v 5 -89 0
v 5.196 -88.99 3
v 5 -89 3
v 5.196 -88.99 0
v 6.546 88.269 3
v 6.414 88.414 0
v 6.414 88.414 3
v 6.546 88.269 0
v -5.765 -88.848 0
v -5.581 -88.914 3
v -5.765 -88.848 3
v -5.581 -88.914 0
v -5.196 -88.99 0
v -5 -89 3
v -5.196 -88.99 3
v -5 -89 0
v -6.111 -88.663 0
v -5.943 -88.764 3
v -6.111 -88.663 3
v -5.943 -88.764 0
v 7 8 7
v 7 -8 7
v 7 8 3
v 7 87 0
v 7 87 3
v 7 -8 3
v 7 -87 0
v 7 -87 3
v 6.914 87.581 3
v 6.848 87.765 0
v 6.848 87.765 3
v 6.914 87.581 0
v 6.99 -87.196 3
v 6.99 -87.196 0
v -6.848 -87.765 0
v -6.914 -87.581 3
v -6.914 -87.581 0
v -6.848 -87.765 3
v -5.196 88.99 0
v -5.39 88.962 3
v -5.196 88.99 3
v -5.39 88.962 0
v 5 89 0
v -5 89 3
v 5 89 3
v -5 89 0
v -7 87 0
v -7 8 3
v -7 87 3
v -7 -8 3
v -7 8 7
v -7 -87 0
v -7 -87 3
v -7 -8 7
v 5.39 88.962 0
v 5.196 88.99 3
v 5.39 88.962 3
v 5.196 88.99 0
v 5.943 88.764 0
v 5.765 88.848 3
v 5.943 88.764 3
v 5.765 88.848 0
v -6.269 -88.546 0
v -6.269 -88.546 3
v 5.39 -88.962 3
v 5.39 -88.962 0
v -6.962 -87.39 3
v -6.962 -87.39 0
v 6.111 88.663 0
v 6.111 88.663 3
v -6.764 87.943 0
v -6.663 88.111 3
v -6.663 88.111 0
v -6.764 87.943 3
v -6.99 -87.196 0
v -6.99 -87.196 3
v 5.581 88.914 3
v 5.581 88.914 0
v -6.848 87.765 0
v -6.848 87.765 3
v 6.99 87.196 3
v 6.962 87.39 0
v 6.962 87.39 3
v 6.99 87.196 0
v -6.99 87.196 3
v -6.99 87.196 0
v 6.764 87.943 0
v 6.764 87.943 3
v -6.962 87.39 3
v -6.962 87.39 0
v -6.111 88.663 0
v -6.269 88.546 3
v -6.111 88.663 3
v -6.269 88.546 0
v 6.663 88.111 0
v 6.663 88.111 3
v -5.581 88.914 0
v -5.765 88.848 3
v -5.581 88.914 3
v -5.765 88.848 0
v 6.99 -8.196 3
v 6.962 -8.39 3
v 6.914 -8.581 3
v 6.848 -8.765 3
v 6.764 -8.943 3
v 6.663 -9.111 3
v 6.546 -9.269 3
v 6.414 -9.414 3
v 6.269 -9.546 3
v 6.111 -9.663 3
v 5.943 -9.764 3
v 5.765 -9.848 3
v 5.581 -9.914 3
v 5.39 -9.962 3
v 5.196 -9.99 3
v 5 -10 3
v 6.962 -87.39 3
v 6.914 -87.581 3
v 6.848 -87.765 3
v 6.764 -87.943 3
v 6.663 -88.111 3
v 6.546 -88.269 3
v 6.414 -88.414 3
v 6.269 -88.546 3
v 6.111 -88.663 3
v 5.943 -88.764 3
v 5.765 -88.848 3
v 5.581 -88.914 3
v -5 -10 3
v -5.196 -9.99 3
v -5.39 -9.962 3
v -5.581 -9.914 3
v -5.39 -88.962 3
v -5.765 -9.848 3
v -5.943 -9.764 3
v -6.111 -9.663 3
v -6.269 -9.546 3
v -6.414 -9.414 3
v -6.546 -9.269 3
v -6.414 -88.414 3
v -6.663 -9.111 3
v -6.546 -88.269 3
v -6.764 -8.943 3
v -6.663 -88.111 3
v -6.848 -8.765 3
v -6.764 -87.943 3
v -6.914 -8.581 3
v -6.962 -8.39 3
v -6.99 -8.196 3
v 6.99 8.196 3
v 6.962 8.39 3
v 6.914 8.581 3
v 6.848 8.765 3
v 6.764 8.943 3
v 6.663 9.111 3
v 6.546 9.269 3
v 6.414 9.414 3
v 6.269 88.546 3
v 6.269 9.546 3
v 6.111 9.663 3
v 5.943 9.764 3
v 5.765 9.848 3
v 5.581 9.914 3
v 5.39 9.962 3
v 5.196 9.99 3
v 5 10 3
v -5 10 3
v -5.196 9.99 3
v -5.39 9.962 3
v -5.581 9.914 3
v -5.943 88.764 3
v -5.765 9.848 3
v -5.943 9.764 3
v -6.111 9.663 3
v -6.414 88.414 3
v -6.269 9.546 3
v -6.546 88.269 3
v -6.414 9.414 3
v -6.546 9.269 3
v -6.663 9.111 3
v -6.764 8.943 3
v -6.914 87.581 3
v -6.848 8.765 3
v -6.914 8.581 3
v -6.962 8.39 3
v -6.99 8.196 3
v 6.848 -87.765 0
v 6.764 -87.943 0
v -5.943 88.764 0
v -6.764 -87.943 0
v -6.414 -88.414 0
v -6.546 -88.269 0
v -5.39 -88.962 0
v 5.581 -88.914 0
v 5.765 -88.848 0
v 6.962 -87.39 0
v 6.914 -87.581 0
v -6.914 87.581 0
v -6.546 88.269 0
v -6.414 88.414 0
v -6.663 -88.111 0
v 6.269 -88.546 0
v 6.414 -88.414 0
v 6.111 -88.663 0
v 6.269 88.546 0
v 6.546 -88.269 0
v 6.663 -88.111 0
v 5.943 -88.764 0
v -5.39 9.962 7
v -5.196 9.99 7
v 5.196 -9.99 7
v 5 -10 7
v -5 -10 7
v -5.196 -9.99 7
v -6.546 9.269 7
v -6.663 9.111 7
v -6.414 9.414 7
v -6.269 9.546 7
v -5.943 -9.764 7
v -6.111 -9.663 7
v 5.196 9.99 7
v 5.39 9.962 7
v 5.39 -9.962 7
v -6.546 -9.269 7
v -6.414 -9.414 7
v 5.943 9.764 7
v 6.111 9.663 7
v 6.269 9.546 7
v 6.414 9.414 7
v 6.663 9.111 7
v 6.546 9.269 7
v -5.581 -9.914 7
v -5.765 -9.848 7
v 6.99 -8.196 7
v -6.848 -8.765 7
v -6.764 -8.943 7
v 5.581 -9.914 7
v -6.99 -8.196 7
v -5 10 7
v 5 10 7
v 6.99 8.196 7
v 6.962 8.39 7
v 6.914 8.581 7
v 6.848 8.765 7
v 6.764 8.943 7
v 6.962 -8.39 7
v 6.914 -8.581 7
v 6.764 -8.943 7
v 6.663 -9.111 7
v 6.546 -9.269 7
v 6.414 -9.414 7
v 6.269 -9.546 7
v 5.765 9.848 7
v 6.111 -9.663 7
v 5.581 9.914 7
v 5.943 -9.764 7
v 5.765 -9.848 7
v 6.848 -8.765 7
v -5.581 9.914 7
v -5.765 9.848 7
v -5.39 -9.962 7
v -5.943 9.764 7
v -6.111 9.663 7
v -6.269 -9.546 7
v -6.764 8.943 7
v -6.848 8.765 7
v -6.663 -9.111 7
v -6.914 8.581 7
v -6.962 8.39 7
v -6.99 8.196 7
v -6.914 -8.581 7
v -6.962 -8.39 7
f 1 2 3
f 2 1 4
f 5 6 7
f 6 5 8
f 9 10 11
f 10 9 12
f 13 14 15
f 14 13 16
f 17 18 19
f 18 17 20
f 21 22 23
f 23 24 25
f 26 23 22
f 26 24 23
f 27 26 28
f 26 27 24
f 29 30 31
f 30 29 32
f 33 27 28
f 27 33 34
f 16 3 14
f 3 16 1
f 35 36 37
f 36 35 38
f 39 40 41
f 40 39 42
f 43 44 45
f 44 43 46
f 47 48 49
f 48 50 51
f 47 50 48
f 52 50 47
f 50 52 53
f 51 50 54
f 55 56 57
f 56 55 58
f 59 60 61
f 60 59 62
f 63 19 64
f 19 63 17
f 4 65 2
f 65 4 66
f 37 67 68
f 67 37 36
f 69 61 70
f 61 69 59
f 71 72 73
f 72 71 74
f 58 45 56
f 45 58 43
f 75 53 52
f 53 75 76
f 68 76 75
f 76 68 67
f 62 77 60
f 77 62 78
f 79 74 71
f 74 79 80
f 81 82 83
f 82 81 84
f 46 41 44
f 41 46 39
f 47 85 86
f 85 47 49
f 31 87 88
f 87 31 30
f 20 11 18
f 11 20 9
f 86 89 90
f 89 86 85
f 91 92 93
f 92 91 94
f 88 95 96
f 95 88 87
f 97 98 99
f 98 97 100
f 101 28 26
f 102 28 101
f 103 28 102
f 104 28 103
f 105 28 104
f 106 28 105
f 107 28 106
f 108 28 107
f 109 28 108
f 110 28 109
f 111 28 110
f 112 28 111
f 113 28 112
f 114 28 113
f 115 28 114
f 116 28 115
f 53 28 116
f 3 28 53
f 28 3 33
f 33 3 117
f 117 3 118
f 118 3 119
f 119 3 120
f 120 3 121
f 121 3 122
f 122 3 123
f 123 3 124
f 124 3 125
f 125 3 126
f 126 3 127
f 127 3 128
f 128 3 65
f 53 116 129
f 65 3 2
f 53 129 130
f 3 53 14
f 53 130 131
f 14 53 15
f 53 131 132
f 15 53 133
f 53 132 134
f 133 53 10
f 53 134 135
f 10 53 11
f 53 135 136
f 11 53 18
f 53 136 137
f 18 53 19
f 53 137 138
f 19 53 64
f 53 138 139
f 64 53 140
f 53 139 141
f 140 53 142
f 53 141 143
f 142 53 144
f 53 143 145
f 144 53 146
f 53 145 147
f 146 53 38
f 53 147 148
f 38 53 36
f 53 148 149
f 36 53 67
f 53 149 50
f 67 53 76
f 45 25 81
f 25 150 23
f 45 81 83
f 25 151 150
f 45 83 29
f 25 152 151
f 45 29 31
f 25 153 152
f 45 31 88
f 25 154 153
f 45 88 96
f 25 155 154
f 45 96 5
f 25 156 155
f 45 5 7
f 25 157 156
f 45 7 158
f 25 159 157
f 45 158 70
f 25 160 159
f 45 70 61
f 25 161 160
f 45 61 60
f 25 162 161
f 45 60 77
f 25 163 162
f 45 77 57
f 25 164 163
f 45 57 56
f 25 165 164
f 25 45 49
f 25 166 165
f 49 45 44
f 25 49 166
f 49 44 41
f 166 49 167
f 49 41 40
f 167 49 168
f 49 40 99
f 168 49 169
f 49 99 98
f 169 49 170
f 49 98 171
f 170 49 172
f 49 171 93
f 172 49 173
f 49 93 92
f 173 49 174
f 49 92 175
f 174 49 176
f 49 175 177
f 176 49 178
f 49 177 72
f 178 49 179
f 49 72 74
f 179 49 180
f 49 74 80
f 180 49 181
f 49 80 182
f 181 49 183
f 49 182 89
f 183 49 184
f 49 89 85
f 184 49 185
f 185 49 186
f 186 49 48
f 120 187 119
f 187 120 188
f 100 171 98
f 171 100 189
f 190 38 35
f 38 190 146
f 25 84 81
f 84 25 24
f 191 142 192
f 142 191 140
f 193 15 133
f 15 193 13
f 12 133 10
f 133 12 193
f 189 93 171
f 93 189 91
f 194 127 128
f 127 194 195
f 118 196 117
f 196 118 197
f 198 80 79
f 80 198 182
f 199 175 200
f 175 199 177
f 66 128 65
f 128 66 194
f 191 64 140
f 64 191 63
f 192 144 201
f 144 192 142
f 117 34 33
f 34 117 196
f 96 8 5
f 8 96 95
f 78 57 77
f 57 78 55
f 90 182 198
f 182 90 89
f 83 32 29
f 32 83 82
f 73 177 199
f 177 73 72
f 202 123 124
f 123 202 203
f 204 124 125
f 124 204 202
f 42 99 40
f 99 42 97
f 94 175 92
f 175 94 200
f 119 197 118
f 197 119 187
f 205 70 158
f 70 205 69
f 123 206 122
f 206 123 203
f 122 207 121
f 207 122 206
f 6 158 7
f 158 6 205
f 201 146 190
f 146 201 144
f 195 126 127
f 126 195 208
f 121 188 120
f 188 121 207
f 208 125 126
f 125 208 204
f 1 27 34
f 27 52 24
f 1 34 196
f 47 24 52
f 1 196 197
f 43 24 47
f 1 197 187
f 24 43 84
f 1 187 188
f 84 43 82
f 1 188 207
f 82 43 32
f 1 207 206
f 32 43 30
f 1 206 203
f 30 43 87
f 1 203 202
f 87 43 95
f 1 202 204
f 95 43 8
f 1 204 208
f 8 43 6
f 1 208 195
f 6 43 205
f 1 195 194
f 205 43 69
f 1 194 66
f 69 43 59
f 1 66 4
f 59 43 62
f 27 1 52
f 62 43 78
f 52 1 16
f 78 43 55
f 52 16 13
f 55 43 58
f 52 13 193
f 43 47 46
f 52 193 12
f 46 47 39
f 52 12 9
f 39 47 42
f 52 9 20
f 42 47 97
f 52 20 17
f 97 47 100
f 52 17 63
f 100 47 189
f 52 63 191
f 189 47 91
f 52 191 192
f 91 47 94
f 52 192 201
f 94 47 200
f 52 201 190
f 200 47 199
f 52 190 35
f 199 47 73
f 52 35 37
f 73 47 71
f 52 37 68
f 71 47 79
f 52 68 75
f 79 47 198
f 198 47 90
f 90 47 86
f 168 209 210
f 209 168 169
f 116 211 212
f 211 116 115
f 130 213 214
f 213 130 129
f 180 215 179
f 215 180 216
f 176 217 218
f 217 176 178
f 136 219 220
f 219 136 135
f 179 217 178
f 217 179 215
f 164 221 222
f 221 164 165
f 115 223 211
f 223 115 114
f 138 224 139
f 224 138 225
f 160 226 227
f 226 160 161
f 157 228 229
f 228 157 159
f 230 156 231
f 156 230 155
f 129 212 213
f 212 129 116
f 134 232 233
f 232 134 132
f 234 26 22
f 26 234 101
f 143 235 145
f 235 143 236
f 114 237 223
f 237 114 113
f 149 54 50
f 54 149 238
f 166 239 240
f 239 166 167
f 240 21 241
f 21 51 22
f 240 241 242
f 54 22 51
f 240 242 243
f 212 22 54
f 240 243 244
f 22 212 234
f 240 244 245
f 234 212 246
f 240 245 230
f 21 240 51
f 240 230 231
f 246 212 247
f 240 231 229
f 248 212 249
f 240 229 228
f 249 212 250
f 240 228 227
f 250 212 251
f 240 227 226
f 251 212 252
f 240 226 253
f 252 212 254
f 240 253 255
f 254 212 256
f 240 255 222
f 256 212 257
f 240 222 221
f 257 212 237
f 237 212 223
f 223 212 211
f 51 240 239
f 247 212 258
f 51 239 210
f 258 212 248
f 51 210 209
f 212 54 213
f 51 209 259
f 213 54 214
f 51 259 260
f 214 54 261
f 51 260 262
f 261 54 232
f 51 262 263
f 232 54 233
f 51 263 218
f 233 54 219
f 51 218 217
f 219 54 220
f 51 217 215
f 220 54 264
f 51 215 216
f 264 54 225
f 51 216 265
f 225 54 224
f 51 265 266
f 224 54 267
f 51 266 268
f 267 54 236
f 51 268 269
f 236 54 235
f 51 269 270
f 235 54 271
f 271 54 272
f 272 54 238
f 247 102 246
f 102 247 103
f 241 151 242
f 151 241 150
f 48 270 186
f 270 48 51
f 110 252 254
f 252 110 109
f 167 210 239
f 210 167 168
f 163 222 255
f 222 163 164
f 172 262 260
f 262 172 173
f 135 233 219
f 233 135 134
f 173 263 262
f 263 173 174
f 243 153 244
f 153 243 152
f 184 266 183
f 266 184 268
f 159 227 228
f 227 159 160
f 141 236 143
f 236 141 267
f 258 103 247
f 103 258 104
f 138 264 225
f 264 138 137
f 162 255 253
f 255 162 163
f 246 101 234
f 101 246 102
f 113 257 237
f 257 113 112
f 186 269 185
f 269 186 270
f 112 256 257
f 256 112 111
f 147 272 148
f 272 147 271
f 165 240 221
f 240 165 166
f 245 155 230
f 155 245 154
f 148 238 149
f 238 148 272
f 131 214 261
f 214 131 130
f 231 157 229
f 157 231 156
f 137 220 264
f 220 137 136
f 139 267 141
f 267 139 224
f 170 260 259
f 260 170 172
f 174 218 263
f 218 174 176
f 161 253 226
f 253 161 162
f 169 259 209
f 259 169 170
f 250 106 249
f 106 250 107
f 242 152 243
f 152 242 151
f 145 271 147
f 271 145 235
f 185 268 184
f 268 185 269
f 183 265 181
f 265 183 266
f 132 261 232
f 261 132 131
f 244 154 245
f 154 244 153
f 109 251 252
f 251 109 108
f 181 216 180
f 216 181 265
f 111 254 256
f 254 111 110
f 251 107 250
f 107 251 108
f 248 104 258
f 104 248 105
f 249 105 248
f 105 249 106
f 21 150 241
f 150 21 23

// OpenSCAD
// file: surface-go-window-frame.scad
// Window frame for the Surface Go (1st gen) shop screen.
//
// Glass side: front lip + skirt. Four 3M Dual Lock pads sit at
// (+-pad_c, +-pad_c) - the same spots in landscape and portrait, so the
// frame can be pulled off the glass and snapped back rotated 90 degrees.
// Room side: open back; two flexible bars snap into grooves to hold the tablet.
//
// Print orientation as modelled: back (room side) down on the bed, glass side up.
// Supports only under the front lip (it faces the tablet bezel, hidden).
// Units mm. Landscape as seen from the room: x right, y up, z towards the glass.
//
// Parts: this file renders the frame. surface-go-back-bar.scad (print 2) and
// surface-go-fit-test.scad reuse it via use<>, so change dimensions here only.
//
// Licence: CC BY-NC 4.0

/* [Tablet - Surface Go 1 is 245 x 175 x 8.3] */
tab_w = 245.0;
tab_h = 175.0;
tab_t = 8.3;
clear = 0.5;           // per side in the pocket
tab_r = 5.0;           // pocket corner radius (keep <= tablet's corner radius)

/* [Frame] */
wall = 3.0;            // side wall thickness
lip = 2.0;             // front lip thickness (glass side)
lip_over = 13.0;       // how far the lip covers the bezel (screen starts ~17 in)

/* [Back retention bars] */
ret = 1.5;             // wall material behind the groove (holds the bar in)
bar_t = 3.0;
groove_h = bar_t + 0.3;
groove_d = 1.2;        // groove depth into the long walls
bar_w = 14.0;
bar_play = 0.4;        // bar is this much shorter than groove-to-groove
tab_play = 0.5;        // front-back slack for the tablet

/* [3M Dual Lock] */
dl_mated = 5.7;        // measure your mated pair incl. both adhesives!
pad = 12.0;            // pad square size
pad_c = 81.5;          // pad centre offset from frame centre (both axes)
pad_recess = 0.4;      // shallow locating pocket for each pad
skirt_gap = 0.3;       // skirt stops this short of the glass

/* [Cutouts - landscape: right edge = Surface Connect, top-left = buttons] */
cable_y = [-55, 25];   // slot in the right wall, y range
btn_x = [-112, -68];   // slot in the top wall, x range (power + volume)

$fn = 64;

// --- derived ---------------------------------------------------------------
pw = tab_w + 2 * clear;          // pocket 246 x 176
ph = tab_h + 2 * clear;
ow = pw + 2 * wall;              // outer 252 x 182
oh = ph + 2 * wall;
o_r = tab_r + wall;

z_groove0 = ret;
z_tab0 = ret + groove_h;
z_lip0 = z_tab0 + tab_t + tab_play;
z_lip1 = z_lip0 + lip;
skirt = dl_mated - pad_recess - skirt_gap;
z_top = z_lip1 + skirt;

win_w = pw - 2 * lip_over;       // 220 x 150 window (screen ~211 x 141)
win_h = ph - 2 * lip_over;

// sanity: pad must sit inside the lip band, clear of the skirt
assert(pad_c - pad / 2 >= ph / 2 - lip_over, "pad overlaps the screen window");
assert(pad_c + pad / 2 <= ph / 2, "pad overlaps the skirt");

echo(str("outer ", ow, " x ", oh, " x ", z_top, "  window ", win_w, " x ", win_h));

// --- helpers ---------------------------------------------------------------
module rrect(w, h, r) {
    offset(r = r) square([w - 2 * r, h - 2 * r], center = true);
}

module box(x0, x1, y0, y1, z0, z1) {
    translate([x0, y0, z0]) cube([x1 - x0, y1 - y0, z1 - z0]);
}

// --- parts -----------------------------------------------------------------
module frame() {
    difference() {
        linear_extrude(z_top) rrect(ow, oh, o_r);

        // tablet pocket (open back)
        translate([0, 0, -0.01]) linear_extrude(z_lip0 + 0.01) rrect(pw, ph, tab_r);
        // screen window through the lip
        translate([0, 0, -1]) linear_extrude(z_top + 2) rrect(win_w, win_h, 3);
        // space inside the skirt, in front of the lip
        translate([0, 0, z_lip1]) linear_extrude(skirt + 1) rrect(pw, ph, tab_r);

        // bar grooves along the full length of both long walls
        for (s = [1, -1])
            box(-pw / 2 + tab_r, pw / 2 - tab_r,
                min(s * ph / 2, s * (ph / 2 + groove_d)),
                max(s * ph / 2, s * (ph / 2 + groove_d)),
                z_groove0, z_groove0 + groove_h);

        // Surface Connect slot (right wall), open from the back up to the lip
        box(pw / 2 - 1, ow / 2 + 1, cable_y[0], cable_y[1], -1, z_lip0);
        // button access (top wall)
        box(btn_x[0], btn_x[1], ph / 2 - 1, oh / 2 + 1, -1, z_lip0);

        // Dual Lock locating recesses on the lip's glass face
        for (sx = [1, -1], sy = [1, -1])
            translate([sx * pad_c, sy * pad_c, 0])
                box(-pad / 2 - 0.2, pad / 2 + 0.2, -pad / 2 - 0.2, pad / 2 + 0.2,
                    z_lip1 - pad_recess, z_lip1 + 1);
    }
}

module bar() {
    bar_len = ph + 2 * groove_d - bar_play;
    linear_extrude(bar_t) rrect(bar_w, bar_len, 2);
    linear_extrude(bar_t + 4) rrect(bar_w, 20, 2);   // finger tab to pull it out
}

// one corner of the frame, ~20 min print: check the tablet corner, lip and bar fit
module test_corner() {
    intersection() {
        frame();
        box(70, 130, 40, 95, -1, 30);
    }
}

frame();
// main file
// Back retention bar for the Surface Go window frame - print 2.
// Bow it slightly and snap both ends into the grooves on the long walls.
// Dimensions come from surface-go-window-frame.scad.
use <surface-go-window-frame.scad>

bar();
